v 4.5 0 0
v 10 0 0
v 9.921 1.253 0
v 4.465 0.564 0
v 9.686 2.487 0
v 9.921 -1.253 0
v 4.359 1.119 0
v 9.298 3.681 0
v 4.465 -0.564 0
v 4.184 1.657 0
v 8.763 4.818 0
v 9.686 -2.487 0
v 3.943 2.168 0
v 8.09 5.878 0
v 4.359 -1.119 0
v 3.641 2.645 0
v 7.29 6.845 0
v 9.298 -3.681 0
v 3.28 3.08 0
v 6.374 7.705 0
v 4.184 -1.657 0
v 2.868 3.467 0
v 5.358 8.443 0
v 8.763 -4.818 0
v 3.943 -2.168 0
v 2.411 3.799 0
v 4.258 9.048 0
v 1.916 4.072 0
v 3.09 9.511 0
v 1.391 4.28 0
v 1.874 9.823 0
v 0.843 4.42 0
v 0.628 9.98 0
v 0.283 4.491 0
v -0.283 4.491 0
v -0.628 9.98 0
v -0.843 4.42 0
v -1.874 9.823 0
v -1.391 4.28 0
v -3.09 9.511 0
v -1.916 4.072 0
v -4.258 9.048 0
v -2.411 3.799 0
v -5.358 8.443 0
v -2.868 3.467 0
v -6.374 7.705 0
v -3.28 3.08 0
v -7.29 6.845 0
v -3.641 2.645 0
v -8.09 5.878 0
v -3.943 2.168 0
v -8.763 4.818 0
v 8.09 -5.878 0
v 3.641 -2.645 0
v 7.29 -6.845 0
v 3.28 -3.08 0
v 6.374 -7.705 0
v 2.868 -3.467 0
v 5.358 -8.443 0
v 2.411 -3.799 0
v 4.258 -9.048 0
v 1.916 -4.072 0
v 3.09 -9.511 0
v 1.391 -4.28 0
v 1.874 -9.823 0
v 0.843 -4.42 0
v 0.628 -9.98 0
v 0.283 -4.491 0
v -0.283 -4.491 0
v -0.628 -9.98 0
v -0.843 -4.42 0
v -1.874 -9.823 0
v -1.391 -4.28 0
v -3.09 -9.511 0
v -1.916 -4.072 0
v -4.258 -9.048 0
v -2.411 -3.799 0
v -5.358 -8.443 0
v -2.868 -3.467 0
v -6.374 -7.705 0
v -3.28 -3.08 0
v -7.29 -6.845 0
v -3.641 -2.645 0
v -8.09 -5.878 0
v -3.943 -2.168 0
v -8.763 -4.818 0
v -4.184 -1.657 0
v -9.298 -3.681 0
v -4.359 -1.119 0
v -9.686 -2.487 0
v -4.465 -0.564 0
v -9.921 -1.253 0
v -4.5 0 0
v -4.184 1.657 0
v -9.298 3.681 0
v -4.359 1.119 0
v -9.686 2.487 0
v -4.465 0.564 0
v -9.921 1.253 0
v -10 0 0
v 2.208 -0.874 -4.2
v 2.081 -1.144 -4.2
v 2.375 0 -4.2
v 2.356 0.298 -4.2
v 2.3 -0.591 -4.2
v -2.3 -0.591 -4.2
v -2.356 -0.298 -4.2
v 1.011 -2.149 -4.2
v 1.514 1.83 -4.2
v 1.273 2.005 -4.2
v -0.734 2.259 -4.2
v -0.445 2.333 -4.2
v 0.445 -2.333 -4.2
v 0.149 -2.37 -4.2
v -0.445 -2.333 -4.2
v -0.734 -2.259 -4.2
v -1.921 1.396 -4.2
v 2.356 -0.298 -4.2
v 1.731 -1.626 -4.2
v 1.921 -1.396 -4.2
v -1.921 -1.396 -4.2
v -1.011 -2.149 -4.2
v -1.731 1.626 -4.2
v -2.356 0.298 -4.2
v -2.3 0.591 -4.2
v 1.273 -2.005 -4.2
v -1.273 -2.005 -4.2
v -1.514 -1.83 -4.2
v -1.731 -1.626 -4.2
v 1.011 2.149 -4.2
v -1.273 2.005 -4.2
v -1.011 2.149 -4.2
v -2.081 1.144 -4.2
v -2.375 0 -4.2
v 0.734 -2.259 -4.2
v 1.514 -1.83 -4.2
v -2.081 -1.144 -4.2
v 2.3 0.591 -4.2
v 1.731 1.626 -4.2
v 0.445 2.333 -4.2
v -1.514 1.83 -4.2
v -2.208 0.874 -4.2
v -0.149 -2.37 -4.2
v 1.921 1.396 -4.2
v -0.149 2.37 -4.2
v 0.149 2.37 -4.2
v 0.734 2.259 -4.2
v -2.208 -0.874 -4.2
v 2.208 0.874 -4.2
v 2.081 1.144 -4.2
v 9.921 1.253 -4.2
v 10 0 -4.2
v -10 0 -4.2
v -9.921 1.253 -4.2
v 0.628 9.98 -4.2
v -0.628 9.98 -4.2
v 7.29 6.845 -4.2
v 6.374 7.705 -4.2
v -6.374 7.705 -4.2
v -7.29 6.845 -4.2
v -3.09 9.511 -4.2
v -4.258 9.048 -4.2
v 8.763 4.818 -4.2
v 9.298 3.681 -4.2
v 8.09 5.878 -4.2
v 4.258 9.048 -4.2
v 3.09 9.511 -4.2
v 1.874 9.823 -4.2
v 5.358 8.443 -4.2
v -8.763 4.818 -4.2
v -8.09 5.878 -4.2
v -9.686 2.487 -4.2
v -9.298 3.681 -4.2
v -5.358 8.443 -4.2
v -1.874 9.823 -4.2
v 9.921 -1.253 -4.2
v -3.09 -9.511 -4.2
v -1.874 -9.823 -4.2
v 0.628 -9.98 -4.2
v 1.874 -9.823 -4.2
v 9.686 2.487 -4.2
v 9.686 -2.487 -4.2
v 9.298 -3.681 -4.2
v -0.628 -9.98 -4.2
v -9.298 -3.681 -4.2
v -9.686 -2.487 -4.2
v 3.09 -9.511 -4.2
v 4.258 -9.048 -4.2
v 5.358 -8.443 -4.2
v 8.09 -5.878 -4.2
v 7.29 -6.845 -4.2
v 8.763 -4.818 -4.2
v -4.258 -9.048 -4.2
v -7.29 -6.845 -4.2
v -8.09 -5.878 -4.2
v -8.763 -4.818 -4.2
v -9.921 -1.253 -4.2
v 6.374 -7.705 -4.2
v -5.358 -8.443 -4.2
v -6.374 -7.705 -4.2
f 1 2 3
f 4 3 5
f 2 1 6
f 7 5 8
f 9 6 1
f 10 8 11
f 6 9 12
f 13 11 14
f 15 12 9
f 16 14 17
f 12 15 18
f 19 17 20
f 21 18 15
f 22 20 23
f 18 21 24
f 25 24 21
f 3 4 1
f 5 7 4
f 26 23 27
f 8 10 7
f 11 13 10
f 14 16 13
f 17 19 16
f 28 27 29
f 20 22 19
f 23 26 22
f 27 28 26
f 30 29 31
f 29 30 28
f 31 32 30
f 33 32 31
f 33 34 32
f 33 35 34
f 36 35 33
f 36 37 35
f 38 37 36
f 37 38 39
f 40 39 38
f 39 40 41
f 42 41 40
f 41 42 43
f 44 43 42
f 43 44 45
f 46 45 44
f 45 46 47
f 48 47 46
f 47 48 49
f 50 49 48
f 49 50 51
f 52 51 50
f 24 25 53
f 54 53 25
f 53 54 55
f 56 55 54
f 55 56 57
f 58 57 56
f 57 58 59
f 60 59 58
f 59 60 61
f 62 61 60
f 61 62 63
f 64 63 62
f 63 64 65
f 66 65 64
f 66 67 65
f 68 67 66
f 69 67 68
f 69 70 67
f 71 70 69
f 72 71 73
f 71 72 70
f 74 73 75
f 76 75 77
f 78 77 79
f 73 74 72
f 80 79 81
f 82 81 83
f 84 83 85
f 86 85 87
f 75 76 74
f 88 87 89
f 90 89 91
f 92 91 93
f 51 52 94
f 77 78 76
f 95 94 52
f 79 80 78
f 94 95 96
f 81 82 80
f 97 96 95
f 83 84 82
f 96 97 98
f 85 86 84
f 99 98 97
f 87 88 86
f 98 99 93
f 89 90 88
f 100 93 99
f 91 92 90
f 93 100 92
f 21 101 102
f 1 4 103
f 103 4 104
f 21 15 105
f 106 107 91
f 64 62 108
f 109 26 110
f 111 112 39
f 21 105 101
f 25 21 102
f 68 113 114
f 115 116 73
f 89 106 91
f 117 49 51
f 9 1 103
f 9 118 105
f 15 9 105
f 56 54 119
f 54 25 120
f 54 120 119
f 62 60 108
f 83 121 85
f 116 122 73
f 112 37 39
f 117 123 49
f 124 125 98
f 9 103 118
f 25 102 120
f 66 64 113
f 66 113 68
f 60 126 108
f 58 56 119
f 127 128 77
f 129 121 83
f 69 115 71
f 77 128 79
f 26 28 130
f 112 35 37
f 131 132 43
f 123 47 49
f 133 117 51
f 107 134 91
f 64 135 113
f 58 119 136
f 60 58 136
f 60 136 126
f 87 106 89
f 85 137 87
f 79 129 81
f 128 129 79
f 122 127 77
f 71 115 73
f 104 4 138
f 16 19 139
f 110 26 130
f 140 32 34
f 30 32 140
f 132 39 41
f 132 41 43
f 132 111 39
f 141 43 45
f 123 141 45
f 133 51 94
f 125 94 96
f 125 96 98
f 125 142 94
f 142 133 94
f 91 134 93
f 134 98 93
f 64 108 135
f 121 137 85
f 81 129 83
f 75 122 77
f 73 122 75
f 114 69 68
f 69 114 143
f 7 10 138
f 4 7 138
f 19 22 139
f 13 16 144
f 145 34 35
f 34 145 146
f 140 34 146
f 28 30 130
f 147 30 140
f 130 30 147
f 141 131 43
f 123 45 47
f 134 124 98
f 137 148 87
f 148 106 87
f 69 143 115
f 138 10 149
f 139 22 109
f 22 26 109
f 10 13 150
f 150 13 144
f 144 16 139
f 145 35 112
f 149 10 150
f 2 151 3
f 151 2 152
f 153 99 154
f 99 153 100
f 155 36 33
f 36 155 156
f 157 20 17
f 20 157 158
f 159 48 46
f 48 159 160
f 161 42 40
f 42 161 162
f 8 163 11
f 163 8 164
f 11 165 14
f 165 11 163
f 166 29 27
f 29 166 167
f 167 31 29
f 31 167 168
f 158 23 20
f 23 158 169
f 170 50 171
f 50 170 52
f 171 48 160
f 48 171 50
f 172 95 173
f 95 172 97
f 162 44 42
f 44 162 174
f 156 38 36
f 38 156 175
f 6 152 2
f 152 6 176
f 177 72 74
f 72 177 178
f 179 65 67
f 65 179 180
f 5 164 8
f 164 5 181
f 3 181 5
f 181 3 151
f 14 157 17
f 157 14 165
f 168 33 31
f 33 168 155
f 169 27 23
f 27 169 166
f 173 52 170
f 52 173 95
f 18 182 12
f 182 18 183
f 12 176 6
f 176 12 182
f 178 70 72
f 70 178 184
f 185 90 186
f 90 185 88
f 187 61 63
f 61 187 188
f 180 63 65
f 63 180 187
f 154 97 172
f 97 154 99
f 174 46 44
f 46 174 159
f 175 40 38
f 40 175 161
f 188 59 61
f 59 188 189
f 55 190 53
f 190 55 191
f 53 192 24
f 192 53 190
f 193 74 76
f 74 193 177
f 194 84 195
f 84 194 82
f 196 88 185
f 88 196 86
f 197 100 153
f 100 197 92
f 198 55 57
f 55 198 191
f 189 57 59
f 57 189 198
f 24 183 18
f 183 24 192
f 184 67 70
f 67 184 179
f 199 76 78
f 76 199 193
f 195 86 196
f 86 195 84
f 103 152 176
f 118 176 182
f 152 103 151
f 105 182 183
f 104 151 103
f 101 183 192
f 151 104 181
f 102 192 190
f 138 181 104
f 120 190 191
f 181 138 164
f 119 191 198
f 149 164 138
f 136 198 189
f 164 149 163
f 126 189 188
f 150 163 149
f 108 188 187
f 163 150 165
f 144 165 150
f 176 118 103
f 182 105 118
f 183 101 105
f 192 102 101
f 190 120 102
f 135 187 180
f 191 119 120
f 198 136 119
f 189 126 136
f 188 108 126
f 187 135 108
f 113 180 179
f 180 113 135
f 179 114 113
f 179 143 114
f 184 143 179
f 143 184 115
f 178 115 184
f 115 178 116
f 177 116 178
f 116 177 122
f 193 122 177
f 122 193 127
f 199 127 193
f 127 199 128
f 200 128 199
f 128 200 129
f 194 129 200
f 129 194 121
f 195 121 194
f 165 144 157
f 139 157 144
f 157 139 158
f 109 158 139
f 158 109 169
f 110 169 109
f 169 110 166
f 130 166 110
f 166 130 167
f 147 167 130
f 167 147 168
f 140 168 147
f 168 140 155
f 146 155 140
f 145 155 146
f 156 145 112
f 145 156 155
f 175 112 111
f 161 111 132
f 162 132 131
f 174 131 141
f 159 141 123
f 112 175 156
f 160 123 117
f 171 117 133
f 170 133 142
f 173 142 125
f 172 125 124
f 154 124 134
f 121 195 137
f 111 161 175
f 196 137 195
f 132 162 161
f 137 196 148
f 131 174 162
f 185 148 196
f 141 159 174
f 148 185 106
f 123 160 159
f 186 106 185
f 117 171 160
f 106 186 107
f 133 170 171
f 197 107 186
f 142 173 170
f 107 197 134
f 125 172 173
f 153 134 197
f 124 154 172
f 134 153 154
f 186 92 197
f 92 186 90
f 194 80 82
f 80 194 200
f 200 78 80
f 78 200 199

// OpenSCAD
$fn = 50;

difference() {
	union() {
		translate(v = [0, 0, -4.2]) {
			cylinder(h = 4.2, r = 10.0);
		}
	}
	union() {
		translate(v = [0, 0, 0]) {
			rotate(a = [0, 0, 0]) {
				difference() {
					union() {
						translate(v = [0, 0, -7.2]) {
							cylinder(h = 7.2, r = 2.25);
						}
						translate(v = [0, 0, -4.2]) {
							cylinder(h = 4.2, r1 = 2.375, r2 = 4.5);
						}
						translate(v = [0, 0, -7.2]) {
							cylinder(h = 7.2, r = 2.375);
						}
						translate(v = [0, 0, -7.2]) {
							cylinder(h = 7.2, r = 2.25);
						}
					}
					union();
				}
			}
		}
	}
}
